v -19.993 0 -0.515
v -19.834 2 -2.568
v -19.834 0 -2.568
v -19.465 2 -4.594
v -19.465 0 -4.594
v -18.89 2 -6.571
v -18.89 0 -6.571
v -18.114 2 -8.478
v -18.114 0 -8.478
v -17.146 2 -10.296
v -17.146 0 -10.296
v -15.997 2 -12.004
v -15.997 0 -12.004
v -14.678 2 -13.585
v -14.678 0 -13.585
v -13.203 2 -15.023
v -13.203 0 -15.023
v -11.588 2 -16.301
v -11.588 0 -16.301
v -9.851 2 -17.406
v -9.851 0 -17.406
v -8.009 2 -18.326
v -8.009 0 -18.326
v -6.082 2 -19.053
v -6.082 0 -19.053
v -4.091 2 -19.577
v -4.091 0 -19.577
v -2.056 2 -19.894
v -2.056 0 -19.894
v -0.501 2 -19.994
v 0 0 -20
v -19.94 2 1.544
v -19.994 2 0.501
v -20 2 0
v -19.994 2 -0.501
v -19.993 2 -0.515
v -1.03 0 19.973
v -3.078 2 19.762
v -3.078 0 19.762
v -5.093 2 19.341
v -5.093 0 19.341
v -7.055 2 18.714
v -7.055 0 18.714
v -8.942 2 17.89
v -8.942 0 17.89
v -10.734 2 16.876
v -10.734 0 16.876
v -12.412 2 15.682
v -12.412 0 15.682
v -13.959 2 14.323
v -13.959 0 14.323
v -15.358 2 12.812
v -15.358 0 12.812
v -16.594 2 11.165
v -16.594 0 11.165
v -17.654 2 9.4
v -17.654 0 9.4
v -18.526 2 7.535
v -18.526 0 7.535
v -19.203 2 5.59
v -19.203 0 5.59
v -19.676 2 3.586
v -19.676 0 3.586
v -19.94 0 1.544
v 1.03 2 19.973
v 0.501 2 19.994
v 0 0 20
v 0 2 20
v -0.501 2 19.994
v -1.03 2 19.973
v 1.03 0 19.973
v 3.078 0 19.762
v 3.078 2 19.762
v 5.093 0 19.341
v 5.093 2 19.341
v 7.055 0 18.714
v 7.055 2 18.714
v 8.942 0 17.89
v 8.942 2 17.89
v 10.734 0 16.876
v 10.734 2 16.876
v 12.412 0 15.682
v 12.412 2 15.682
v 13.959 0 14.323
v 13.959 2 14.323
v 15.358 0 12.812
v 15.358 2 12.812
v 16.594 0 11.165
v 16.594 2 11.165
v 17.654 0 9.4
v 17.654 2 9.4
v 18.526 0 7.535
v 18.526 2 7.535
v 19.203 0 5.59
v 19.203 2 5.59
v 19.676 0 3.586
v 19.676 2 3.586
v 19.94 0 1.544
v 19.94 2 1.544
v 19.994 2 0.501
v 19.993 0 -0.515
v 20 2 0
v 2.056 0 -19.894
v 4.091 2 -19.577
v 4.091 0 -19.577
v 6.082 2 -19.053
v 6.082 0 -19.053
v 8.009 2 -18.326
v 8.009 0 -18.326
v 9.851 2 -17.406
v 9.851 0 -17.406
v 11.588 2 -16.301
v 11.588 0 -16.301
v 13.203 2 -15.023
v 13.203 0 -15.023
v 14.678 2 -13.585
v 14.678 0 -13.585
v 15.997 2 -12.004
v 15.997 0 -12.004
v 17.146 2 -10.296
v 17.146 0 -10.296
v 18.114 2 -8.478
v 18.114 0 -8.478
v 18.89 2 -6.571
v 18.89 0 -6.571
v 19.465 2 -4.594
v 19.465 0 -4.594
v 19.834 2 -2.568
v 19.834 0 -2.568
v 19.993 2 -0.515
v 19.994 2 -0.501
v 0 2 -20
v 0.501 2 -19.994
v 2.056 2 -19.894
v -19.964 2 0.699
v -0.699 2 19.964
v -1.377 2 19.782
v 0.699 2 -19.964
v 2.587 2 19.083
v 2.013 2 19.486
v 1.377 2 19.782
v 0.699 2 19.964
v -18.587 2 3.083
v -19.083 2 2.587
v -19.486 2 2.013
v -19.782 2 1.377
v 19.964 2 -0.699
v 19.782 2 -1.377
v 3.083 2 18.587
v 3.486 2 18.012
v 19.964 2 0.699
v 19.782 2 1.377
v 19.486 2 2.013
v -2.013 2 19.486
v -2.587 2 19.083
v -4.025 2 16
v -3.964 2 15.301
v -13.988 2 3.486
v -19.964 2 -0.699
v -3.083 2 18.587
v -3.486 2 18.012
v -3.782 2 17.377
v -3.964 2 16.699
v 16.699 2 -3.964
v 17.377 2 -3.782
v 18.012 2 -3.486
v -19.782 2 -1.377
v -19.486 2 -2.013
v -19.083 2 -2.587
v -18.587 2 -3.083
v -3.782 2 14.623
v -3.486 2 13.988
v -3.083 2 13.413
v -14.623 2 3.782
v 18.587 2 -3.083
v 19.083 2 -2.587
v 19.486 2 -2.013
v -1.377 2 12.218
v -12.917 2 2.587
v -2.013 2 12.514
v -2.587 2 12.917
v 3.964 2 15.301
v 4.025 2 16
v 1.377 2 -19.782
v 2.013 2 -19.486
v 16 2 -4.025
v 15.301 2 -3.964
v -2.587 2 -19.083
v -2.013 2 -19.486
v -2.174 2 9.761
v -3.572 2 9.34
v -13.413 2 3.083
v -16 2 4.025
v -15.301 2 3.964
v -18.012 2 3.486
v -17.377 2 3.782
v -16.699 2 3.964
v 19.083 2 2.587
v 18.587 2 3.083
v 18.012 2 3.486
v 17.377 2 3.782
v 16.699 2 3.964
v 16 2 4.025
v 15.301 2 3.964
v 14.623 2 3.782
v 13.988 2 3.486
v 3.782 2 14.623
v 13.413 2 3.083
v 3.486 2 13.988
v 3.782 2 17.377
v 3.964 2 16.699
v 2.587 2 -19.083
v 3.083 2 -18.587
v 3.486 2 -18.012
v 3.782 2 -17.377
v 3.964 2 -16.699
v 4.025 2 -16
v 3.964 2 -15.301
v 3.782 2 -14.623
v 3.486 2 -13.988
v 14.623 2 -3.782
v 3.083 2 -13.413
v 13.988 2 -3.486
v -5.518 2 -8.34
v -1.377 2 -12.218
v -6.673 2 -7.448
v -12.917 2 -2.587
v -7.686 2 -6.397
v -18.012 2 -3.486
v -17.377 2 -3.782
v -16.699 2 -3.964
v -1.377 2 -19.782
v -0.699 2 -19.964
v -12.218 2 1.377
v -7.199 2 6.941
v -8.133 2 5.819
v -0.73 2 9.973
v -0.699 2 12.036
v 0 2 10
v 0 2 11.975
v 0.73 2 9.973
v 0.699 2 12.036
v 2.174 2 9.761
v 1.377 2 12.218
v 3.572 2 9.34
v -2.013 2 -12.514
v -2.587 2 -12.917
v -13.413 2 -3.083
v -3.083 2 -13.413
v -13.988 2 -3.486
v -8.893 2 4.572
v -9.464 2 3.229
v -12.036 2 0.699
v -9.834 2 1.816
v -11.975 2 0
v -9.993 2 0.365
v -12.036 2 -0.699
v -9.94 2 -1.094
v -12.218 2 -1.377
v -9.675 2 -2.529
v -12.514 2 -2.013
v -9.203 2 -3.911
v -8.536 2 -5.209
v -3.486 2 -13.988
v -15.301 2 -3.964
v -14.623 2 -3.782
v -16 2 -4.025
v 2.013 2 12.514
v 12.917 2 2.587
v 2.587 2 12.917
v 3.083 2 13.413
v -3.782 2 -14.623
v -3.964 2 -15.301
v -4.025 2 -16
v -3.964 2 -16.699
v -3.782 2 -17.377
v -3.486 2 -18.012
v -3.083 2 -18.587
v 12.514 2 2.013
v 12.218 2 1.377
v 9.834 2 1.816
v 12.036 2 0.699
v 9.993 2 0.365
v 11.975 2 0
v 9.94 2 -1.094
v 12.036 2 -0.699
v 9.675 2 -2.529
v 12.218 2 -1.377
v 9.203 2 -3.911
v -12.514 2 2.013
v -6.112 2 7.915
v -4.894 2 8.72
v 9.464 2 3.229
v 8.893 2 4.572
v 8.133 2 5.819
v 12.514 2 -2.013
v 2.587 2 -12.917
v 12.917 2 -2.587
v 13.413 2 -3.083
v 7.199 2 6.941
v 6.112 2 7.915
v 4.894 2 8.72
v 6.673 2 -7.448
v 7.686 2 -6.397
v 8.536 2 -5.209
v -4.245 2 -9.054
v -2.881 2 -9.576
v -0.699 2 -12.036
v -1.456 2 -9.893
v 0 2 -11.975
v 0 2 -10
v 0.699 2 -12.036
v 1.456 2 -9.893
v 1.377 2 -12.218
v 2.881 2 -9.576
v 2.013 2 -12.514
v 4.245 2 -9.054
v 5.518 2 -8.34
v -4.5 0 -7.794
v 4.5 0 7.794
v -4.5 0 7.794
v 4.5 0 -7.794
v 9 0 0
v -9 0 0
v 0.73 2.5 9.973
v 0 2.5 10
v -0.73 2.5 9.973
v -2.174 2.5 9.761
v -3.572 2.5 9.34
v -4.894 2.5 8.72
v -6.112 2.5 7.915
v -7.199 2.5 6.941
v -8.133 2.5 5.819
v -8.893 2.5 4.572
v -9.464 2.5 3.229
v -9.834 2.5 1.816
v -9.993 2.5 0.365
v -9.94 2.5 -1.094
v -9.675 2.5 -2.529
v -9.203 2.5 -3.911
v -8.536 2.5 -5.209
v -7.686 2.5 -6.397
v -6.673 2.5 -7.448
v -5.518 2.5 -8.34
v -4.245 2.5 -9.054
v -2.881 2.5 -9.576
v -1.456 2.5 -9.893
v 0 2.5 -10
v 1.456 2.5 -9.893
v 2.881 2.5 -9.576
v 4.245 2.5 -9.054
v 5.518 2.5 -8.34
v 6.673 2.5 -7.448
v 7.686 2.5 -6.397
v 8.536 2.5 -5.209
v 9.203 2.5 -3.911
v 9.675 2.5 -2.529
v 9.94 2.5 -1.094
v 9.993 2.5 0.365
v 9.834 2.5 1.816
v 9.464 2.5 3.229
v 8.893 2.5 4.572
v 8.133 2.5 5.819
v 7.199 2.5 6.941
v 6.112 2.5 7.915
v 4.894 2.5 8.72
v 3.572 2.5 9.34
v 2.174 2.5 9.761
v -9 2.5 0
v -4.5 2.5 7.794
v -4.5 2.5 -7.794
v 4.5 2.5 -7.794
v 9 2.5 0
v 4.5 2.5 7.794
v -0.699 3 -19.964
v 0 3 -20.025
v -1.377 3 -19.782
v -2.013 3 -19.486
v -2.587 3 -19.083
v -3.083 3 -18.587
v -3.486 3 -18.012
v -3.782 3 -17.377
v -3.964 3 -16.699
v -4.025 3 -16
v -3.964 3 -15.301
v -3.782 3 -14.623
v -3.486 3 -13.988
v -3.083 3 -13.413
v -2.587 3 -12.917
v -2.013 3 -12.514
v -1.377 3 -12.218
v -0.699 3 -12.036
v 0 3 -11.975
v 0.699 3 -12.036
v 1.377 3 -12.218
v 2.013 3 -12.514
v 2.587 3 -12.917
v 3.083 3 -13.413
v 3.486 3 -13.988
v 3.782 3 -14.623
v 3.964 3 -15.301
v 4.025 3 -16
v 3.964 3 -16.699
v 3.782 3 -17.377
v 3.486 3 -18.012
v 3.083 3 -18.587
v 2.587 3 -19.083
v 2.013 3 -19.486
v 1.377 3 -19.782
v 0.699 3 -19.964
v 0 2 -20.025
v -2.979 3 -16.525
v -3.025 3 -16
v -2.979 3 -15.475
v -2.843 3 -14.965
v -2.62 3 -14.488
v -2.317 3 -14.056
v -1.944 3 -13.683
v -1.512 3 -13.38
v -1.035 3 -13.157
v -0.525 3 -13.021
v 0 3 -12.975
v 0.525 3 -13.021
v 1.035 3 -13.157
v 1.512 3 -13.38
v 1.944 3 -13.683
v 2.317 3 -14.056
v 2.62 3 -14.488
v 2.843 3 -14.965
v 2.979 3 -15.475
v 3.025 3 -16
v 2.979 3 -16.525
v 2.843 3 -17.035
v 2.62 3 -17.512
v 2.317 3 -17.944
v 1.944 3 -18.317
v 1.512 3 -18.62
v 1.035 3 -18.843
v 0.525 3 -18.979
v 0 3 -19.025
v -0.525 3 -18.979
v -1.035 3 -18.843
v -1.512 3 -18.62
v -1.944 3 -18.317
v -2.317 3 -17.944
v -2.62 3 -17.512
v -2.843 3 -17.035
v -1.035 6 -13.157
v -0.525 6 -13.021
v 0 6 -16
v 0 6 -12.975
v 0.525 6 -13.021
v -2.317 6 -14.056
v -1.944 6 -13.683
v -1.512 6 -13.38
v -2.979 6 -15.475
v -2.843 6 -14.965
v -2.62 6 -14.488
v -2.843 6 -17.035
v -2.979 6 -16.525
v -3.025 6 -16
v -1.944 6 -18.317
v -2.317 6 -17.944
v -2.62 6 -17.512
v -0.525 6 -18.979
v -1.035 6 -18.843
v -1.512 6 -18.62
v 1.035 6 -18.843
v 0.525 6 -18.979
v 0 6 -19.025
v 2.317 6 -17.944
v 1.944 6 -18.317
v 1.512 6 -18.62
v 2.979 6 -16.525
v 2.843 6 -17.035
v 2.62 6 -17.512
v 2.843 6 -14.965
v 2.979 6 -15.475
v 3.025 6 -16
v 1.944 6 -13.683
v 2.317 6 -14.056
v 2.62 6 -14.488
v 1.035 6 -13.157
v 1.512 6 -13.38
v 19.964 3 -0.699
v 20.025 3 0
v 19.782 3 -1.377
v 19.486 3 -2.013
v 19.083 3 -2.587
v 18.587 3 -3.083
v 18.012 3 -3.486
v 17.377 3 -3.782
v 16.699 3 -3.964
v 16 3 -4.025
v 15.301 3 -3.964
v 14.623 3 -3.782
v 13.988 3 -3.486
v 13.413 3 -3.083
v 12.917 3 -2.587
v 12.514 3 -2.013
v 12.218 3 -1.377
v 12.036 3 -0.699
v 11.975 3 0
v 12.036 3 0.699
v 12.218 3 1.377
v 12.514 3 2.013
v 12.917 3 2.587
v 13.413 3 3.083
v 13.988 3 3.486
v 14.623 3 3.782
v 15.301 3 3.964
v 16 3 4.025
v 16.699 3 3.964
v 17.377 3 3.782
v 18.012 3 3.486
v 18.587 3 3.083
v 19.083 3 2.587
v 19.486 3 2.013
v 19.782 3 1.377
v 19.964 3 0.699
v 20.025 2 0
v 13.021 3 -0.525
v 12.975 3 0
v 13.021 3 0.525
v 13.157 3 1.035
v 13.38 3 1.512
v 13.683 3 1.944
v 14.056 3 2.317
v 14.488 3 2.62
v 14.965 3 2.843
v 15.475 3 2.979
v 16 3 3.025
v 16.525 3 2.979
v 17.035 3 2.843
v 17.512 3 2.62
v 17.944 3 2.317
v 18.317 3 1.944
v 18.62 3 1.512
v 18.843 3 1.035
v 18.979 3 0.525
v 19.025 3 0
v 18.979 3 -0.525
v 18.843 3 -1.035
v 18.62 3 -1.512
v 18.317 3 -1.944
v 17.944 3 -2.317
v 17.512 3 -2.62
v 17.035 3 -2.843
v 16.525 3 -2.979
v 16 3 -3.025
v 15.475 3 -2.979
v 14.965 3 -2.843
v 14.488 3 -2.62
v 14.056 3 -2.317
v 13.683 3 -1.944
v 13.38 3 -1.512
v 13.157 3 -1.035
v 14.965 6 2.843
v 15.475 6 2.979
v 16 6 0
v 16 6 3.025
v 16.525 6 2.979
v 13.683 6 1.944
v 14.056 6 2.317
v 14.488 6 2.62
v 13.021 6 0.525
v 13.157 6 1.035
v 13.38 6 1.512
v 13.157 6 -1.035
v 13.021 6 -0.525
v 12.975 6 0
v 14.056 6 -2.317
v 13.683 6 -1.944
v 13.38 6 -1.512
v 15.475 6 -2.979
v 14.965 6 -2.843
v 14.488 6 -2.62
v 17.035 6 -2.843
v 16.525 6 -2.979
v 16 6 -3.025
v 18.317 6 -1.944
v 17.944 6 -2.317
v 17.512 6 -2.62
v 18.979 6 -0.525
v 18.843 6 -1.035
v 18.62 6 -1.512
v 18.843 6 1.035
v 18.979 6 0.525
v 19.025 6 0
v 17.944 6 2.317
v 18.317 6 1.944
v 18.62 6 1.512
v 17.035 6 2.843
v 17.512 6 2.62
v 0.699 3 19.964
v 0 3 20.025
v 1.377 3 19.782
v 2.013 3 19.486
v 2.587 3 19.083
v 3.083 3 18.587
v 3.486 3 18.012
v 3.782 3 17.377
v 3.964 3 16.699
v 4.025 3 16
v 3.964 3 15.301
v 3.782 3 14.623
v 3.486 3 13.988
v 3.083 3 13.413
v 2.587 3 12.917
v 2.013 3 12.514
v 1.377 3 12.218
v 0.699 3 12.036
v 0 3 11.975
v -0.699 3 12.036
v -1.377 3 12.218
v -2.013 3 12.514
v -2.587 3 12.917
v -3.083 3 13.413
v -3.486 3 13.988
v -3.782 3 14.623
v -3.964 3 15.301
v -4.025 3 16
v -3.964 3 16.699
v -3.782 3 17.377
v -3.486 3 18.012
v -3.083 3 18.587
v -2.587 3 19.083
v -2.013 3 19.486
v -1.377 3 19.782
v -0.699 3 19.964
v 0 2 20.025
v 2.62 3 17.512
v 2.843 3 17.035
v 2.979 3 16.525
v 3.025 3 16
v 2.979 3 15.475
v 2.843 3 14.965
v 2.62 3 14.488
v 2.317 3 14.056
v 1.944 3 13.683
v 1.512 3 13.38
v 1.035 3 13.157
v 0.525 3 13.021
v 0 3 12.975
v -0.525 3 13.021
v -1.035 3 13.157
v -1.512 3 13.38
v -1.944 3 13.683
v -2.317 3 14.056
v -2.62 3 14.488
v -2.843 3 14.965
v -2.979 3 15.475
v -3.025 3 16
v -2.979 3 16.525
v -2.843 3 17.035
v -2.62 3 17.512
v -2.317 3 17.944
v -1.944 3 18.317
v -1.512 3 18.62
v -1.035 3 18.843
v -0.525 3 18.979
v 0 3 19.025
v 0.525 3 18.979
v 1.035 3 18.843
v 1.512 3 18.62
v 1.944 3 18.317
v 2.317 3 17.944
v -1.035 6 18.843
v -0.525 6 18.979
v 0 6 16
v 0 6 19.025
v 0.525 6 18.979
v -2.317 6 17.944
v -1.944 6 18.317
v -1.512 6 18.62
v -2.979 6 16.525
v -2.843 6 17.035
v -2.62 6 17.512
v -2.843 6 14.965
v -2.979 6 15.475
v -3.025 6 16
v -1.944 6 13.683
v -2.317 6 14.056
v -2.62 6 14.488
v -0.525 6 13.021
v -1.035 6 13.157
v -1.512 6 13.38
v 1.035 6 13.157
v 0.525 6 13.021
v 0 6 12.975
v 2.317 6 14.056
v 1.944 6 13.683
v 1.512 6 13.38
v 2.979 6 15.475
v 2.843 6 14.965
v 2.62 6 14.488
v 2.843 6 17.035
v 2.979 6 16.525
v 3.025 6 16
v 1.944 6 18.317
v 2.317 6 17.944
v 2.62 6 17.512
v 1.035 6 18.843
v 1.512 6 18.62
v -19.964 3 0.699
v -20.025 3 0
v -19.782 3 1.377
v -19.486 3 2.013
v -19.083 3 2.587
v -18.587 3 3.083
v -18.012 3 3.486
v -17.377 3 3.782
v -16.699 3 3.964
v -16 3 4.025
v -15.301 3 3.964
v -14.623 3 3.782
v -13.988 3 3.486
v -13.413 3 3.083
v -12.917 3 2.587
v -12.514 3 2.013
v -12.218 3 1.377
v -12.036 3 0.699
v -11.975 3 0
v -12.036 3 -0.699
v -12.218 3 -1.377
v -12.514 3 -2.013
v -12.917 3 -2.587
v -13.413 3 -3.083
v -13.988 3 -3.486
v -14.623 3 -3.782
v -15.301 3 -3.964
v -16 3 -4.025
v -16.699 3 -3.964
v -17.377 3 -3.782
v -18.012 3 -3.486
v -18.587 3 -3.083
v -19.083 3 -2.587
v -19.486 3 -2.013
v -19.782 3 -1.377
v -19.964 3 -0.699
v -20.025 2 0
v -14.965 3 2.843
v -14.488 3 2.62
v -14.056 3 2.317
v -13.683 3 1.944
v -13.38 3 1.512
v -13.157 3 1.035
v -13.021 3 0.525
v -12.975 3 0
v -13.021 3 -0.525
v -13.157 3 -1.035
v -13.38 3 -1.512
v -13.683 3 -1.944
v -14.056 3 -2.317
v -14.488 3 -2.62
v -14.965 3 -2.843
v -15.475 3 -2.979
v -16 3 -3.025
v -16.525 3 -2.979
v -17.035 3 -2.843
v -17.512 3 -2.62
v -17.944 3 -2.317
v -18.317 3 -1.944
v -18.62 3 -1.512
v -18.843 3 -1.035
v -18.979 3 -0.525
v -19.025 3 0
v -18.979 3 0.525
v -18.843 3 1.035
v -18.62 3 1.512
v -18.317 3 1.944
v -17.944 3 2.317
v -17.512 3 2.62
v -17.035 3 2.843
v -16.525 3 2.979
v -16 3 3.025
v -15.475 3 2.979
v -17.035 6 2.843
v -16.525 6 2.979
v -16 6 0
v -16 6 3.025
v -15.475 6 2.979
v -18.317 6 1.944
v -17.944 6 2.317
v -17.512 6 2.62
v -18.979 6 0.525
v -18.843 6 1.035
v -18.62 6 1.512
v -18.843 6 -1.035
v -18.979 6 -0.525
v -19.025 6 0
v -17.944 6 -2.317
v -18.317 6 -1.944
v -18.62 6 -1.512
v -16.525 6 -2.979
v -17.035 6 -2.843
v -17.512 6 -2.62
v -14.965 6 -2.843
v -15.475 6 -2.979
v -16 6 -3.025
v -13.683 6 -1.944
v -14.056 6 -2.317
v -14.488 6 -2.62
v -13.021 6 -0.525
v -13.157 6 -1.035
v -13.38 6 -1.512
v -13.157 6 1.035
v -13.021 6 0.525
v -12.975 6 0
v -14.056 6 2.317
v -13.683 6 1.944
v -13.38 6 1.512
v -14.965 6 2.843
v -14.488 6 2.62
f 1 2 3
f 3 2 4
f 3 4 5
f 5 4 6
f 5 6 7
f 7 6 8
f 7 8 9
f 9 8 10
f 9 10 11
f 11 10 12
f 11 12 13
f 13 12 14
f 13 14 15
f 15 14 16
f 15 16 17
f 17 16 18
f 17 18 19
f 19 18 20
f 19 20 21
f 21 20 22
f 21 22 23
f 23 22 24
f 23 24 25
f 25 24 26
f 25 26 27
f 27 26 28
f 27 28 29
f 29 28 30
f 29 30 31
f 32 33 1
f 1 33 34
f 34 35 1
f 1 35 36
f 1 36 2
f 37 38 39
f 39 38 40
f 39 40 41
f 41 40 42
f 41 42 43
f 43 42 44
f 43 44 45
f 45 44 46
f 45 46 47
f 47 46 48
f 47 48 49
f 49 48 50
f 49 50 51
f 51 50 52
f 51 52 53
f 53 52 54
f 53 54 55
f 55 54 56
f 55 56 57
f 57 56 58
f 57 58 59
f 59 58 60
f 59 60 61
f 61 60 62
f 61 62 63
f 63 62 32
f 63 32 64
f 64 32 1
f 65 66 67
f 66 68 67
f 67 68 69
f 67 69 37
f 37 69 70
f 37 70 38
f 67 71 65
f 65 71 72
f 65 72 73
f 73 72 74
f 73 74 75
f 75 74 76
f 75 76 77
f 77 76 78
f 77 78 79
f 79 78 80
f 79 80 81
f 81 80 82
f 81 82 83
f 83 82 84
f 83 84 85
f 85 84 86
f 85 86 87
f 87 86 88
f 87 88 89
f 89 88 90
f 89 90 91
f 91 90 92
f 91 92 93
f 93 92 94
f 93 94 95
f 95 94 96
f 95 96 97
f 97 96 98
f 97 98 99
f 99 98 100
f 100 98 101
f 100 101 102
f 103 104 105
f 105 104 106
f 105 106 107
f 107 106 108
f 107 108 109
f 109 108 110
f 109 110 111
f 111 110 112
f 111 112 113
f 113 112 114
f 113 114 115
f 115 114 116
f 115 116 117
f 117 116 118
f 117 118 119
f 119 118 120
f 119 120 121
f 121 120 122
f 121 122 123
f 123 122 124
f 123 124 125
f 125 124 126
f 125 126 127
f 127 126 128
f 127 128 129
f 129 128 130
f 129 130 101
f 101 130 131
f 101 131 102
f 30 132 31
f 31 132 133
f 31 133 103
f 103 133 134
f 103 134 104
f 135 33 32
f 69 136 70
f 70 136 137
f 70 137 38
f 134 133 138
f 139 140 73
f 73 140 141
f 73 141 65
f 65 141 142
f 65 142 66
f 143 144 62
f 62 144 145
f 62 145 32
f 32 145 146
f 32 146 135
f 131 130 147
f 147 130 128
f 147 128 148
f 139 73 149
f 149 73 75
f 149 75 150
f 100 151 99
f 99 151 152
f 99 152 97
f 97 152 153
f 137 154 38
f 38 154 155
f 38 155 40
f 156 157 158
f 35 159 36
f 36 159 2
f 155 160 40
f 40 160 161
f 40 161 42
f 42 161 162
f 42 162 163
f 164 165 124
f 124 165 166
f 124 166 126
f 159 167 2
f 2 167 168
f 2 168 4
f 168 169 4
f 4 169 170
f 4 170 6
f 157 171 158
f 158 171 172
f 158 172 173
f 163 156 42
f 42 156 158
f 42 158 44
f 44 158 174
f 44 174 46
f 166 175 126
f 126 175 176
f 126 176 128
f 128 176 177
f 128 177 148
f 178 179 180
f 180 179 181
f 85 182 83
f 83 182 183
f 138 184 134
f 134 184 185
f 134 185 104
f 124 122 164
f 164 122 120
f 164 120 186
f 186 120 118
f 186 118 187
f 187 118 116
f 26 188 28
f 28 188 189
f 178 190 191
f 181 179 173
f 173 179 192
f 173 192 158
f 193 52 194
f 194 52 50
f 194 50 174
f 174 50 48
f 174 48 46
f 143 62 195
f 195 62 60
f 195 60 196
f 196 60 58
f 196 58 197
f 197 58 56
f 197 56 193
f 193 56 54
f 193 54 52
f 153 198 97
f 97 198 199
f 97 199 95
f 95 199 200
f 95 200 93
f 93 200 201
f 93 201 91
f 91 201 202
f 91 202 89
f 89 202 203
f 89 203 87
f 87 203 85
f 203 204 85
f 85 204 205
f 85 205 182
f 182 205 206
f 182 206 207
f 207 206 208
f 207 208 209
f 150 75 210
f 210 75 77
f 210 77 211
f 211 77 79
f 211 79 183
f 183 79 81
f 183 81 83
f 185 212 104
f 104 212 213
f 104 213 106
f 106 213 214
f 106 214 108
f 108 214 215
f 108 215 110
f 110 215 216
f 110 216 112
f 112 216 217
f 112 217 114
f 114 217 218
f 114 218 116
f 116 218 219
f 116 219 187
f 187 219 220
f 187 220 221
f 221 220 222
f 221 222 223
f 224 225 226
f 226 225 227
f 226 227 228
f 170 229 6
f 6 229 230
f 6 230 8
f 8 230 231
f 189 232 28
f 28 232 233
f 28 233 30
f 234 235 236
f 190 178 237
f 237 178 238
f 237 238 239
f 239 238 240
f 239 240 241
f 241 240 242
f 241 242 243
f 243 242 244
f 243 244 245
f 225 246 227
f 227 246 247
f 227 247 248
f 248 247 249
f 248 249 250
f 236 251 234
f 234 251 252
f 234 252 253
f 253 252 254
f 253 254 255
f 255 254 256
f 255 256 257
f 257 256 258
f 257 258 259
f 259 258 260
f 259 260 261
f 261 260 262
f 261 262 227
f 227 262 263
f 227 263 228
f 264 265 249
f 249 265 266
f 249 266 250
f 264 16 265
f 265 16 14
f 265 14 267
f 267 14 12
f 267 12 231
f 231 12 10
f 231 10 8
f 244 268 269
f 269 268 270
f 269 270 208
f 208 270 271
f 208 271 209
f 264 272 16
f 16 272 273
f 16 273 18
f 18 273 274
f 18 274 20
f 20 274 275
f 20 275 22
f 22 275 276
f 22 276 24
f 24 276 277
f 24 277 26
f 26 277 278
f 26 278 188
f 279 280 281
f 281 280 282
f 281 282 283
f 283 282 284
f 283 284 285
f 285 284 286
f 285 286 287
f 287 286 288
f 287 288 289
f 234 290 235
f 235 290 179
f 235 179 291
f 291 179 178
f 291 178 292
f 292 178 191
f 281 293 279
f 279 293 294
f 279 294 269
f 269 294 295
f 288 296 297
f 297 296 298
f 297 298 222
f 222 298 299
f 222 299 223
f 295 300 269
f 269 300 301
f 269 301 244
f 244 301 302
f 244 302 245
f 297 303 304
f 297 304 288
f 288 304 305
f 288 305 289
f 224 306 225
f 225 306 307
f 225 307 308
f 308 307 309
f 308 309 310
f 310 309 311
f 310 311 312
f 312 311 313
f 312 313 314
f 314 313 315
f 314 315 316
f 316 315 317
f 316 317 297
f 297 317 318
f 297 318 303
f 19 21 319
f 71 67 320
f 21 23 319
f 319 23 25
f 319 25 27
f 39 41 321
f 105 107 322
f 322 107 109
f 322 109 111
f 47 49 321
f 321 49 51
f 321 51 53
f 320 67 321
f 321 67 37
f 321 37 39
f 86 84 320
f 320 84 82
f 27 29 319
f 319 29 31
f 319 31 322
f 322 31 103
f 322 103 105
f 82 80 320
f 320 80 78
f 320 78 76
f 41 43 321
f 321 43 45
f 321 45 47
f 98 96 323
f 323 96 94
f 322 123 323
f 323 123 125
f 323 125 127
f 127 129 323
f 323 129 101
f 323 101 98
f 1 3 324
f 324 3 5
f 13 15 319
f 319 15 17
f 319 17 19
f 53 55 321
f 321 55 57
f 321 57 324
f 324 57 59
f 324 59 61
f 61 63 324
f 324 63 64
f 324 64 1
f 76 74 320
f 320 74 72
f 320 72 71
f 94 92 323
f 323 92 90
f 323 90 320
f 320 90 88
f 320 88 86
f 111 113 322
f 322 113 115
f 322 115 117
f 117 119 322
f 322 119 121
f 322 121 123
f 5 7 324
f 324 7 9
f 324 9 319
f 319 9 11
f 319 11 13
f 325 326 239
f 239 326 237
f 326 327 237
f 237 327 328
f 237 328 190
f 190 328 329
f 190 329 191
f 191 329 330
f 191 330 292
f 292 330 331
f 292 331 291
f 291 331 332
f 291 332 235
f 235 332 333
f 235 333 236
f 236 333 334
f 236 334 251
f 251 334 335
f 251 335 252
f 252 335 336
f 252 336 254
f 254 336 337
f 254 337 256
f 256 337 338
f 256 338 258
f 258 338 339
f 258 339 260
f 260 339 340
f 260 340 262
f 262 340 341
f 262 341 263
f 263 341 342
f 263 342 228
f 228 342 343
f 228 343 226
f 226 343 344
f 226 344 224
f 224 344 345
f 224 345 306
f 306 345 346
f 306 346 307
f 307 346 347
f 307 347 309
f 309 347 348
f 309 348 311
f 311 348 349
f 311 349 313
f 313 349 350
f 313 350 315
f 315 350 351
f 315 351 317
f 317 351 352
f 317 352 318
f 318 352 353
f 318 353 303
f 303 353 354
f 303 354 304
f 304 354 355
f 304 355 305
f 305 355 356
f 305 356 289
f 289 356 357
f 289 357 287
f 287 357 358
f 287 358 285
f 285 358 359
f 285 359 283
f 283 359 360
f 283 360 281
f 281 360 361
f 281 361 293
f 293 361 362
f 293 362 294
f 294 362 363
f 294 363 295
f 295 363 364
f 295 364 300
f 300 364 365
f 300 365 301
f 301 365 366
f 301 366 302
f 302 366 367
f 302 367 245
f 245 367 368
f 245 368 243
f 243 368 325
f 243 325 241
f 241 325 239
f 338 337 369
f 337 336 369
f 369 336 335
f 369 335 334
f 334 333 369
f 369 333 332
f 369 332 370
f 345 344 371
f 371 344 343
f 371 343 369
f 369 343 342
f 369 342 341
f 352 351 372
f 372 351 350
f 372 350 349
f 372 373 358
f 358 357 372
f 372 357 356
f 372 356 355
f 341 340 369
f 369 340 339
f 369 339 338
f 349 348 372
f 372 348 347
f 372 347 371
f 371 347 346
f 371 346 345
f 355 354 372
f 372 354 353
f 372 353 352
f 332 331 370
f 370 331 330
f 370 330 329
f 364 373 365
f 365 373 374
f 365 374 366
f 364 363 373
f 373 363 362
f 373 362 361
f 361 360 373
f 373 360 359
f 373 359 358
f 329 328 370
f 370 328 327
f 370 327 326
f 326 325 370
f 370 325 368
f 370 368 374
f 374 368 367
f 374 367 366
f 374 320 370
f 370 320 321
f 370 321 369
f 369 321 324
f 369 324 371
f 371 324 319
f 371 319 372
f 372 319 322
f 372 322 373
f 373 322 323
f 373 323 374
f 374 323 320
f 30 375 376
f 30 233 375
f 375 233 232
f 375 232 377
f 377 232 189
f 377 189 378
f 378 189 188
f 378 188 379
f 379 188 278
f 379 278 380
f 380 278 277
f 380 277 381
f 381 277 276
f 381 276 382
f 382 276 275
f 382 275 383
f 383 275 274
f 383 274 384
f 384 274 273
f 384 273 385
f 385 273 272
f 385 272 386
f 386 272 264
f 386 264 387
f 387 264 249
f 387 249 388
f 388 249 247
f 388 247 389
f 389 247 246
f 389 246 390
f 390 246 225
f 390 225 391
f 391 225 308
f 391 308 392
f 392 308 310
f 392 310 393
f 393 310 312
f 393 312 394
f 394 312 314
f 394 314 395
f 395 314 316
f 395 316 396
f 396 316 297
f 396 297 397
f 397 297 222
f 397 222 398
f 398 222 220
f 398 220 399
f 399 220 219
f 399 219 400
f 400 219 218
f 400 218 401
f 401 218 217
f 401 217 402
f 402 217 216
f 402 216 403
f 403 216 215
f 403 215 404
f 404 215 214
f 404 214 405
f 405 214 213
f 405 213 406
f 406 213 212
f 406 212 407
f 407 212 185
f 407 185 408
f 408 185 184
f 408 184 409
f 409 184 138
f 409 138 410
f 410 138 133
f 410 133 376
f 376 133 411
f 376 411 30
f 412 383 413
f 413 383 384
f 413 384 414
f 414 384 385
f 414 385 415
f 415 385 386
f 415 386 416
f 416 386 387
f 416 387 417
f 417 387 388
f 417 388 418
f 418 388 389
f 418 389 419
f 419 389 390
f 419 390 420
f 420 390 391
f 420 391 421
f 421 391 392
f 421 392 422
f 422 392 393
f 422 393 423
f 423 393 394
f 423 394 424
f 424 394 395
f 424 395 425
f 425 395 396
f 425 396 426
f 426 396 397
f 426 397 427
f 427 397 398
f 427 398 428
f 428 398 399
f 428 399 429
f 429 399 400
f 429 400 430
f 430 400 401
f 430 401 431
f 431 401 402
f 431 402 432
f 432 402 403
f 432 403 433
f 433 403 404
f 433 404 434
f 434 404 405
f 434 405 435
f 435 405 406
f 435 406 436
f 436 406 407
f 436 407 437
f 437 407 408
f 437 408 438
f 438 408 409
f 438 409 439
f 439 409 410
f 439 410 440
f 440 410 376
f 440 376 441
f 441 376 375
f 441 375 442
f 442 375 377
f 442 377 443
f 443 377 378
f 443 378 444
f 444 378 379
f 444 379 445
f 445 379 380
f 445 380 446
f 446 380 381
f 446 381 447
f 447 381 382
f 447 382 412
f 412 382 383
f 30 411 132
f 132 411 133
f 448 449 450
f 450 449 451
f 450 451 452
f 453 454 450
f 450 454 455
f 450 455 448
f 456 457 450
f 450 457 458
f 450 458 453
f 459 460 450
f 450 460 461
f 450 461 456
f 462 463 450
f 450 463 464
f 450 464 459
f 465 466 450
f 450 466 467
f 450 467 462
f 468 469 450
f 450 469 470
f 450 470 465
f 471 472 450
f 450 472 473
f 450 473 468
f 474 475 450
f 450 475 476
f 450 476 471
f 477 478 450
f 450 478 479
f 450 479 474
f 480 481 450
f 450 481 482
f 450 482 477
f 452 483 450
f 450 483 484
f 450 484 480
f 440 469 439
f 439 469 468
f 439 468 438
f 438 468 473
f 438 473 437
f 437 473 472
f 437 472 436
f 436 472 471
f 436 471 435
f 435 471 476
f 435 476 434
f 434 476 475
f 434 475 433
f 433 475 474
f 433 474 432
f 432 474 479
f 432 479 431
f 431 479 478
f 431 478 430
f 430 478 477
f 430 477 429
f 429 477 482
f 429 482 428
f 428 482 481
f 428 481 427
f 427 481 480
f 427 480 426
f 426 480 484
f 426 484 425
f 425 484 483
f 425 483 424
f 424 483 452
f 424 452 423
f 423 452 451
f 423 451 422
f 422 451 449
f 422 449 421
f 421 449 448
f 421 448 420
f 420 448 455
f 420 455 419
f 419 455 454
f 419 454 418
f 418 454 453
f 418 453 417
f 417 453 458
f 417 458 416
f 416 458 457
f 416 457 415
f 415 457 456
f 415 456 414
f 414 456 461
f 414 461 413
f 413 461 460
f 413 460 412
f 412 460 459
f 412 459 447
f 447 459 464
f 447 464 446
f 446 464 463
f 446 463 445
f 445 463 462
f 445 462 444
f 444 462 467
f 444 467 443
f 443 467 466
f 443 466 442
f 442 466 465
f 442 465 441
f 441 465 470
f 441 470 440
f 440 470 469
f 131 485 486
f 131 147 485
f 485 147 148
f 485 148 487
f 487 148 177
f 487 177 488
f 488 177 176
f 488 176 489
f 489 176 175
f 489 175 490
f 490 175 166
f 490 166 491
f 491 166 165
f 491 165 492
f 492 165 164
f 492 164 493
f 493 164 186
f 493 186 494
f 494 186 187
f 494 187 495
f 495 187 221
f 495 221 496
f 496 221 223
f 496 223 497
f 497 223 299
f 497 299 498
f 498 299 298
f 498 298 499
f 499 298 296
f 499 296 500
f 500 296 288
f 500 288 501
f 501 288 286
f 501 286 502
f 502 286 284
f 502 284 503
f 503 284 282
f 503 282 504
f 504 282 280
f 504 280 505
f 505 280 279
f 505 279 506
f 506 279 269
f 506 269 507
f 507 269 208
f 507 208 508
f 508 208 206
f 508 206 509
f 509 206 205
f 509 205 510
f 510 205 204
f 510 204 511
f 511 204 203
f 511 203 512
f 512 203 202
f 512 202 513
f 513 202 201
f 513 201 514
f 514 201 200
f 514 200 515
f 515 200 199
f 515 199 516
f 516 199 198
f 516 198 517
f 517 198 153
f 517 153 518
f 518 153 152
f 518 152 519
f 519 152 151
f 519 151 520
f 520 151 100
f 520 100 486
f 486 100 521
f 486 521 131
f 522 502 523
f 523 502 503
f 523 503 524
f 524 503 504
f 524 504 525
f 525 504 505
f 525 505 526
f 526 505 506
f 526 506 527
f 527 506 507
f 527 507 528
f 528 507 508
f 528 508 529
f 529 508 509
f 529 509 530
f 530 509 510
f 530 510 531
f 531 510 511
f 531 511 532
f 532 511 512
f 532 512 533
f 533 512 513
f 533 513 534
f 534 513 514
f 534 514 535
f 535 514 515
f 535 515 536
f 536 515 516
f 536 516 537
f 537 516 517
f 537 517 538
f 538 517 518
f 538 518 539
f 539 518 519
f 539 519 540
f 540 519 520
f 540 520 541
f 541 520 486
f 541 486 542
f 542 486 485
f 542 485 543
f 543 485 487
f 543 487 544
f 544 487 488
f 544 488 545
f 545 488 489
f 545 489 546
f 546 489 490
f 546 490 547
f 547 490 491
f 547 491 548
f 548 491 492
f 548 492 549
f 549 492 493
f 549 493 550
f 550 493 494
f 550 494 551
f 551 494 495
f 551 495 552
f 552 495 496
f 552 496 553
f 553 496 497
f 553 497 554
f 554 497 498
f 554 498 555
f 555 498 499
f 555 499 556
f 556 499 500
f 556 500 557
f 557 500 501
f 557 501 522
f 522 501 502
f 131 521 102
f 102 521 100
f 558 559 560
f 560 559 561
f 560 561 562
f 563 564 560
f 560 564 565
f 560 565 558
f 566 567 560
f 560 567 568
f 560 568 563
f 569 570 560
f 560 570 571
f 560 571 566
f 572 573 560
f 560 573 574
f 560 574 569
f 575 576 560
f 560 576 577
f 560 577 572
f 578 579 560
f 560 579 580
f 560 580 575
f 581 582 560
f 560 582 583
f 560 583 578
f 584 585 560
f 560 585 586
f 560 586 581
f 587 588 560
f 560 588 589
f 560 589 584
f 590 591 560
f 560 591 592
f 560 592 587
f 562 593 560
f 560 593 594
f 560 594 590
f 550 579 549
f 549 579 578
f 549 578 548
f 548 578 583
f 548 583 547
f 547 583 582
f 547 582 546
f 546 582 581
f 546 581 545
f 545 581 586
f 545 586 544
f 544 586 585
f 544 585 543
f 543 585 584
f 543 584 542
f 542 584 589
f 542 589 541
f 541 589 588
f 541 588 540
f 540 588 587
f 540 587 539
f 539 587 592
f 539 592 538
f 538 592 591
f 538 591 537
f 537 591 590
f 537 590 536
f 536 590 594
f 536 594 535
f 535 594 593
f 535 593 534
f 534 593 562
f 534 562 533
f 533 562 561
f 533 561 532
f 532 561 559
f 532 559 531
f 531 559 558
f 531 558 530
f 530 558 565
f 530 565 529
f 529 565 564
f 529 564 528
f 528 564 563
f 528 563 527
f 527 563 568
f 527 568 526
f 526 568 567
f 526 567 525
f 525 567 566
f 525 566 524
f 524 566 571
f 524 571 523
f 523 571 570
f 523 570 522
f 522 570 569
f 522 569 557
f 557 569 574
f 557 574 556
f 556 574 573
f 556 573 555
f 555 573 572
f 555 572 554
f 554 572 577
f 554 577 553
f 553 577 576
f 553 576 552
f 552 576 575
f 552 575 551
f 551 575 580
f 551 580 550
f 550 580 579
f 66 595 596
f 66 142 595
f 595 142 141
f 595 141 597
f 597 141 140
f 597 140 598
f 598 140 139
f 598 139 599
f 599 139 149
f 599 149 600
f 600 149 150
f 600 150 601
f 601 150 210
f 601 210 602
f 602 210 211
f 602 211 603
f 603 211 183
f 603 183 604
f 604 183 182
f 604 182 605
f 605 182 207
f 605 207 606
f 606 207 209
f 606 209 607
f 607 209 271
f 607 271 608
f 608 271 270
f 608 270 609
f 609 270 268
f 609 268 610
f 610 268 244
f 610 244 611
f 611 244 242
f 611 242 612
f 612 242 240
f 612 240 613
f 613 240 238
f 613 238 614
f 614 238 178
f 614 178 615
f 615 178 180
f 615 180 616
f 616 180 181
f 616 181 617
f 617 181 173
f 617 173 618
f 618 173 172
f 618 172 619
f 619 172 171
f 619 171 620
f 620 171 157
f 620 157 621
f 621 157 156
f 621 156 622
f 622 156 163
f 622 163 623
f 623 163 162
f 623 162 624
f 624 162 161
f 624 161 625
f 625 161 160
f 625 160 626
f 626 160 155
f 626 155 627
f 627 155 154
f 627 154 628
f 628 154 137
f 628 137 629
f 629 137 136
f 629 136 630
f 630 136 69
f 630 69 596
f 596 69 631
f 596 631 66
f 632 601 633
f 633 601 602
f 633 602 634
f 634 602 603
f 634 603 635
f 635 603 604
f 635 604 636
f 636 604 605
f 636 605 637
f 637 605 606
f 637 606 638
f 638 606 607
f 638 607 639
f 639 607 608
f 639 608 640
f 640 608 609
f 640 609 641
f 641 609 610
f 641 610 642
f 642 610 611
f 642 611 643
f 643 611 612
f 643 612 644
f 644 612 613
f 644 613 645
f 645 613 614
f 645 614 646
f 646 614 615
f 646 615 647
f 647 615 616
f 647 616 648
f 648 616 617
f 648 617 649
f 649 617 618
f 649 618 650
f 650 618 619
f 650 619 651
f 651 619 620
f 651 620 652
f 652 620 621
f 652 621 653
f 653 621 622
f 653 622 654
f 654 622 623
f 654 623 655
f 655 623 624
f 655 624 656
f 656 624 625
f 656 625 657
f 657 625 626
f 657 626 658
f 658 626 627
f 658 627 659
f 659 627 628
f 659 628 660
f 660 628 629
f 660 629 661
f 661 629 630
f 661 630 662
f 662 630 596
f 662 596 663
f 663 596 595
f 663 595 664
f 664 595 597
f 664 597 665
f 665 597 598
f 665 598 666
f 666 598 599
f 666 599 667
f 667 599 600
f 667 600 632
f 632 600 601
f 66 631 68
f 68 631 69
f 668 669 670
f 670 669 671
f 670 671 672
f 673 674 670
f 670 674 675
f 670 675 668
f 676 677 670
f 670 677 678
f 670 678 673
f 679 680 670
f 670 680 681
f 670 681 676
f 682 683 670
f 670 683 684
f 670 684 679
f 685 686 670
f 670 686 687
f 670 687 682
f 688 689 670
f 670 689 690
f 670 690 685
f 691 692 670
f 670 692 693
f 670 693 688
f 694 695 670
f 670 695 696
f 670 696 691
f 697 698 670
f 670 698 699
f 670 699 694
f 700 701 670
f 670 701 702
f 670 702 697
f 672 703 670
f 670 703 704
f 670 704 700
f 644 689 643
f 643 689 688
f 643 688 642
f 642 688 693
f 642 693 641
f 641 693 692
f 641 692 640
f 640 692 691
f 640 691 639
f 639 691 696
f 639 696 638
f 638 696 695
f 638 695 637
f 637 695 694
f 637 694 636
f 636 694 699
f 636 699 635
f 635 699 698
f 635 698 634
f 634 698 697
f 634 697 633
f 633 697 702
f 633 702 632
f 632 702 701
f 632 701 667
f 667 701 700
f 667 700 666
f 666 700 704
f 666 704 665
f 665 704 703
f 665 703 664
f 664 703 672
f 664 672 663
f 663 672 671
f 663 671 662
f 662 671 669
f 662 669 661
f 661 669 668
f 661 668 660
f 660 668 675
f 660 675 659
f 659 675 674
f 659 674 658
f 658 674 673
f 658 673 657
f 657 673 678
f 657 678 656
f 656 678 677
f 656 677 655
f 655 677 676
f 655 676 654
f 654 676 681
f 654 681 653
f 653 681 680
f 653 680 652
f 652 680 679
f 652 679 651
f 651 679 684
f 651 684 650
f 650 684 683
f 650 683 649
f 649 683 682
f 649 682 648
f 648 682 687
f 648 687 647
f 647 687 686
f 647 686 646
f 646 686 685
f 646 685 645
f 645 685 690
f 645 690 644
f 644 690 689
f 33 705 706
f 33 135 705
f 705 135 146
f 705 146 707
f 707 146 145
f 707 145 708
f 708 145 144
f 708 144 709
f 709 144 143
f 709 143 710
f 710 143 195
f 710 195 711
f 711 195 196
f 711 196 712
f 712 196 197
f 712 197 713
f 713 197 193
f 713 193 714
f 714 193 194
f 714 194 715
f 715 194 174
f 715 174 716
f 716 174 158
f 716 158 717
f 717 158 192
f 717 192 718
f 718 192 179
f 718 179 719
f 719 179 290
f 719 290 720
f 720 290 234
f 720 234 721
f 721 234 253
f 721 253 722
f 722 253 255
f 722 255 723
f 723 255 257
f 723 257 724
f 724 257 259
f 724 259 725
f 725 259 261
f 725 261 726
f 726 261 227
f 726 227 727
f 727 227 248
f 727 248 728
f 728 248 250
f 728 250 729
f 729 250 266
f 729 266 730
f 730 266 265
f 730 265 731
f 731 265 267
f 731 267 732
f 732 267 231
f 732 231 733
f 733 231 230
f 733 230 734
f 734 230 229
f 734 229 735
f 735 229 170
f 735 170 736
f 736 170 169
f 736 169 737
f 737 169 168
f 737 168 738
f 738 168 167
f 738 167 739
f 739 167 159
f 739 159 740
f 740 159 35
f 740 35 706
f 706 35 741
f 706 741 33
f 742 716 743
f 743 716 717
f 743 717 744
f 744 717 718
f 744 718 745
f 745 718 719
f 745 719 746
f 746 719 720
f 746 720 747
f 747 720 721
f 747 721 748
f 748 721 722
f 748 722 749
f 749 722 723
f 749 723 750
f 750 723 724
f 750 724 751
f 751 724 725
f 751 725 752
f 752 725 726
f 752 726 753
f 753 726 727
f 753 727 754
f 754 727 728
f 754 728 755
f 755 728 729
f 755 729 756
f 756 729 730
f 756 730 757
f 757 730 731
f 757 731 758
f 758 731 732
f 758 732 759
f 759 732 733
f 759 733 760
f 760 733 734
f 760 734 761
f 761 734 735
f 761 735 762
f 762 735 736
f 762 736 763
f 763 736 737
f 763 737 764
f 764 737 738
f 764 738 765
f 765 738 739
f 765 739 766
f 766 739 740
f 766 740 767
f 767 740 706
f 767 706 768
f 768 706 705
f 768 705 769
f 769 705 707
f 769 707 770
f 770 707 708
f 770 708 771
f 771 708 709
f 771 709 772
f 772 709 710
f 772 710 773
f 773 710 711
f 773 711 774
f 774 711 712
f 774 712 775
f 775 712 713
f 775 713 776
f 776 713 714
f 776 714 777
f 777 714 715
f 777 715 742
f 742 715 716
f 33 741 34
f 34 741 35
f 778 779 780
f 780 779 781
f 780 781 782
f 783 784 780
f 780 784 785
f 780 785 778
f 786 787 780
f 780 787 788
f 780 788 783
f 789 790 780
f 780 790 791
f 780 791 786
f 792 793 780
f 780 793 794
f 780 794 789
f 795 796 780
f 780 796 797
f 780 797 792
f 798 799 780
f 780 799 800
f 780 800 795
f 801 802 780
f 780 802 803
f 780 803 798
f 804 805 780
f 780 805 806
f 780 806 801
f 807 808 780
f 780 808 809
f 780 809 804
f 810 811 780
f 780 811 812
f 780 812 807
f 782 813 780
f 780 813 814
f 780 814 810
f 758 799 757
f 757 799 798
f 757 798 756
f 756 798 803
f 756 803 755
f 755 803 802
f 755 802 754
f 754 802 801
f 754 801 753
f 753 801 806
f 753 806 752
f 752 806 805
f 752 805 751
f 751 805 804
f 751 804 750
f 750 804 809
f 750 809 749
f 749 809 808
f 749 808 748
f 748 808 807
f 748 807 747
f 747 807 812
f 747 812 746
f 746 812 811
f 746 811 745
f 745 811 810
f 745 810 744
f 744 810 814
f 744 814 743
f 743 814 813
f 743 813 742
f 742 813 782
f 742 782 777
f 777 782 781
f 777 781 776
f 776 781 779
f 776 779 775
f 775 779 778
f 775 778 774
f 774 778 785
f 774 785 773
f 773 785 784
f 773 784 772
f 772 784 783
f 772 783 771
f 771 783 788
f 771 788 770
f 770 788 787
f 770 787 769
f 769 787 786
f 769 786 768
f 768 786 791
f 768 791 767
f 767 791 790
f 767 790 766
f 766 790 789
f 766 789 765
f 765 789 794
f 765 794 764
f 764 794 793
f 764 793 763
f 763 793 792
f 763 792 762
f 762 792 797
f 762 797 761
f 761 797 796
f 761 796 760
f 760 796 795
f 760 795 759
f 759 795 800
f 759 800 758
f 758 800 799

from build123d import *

# Parameters (mm, degrees)
ESQUISSE1_R             = 20
BOSS_EXTRU_1_DEPTH      = 2
ESQUISSE2_R             = 3.025
BOSS_EXTRU_2_DEPTH      = 4
ESQUISSE4_R             = 10
BOSS_EXTRU_3_DEPTH      = 0.5
ENL_V_MAT_EXTRU_1_DEPTH = 6
ESQUISSE5_R             = 4.025
BOSS_EXTRU_4_DEPTH      = 1


with BuildPart() as part:
    # Esquisse1 → Boss.-Extru.1 (new body)
    with BuildSketch(Plane(origin=(0, 0, 0), x_dir=(1, 0, 0), z_dir=(0, 1, 0))):
        Circle(ESQUISSE1_R)
    extrude(amount=BOSS_EXTRU_1_DEPTH)

    # Esquisse2 → Boss.-Extru.2 (add)
    with BuildSketch(Plane(origin=(0, 2, 0), x_dir=(1, 0, 0), z_dir=(0, 1, 0))):
        with Locations((0, 16)):
            Circle(ESQUISSE2_R)
        with Locations((16, 0)):
            Circle(ESQUISSE2_R)
        with Locations((0, -16)):
            Circle(ESQUISSE2_R)
        with Locations((-16, 0)):
            Circle(ESQUISSE2_R)
    extrude(amount=BOSS_EXTRU_2_DEPTH)

    # Esquisse4 → Boss.-Extru.3 (add)
    with BuildSketch(Plane(origin=(0, 2, 0), x_dir=(1, 0, 0), z_dir=(0, 1, 0))):
        Circle(ESQUISSE4_R)
    extrude(amount=BOSS_EXTRU_3_DEPTH)

    # Esquisse3 → Enlèv. mat.-Extru.1 (cut)
    with BuildSketch(Plane(origin=(0, 2.5, 0), x_dir=(1, 0, 0), z_dir=(0, 1, 0))):
        Polygon((4.5, -7.794228634), (9, 0), (4.5, 7.794228634), (-4.5, 7.794228634), (-9, 0), (-4.5, -7.794228634), align=None)
    extrude(amount=-ENL_V_MAT_EXTRU_1_DEPTH, mode=Mode.SUBTRACT)

    # Esquisse5 → Boss.-Extru.4 (add)
    with BuildSketch(Plane(origin=(0, 2, 0), x_dir=(1, 0, 0), z_dir=(0, 1, 0))):
        with Locations((16, 0)):
            Circle(ESQUISSE5_R)
        with Locations((0, 16)):
            Circle(ESQUISSE5_R)
        with Locations((0, -16)):
            Circle(ESQUISSE5_R)
        with Locations((-16, 0)):
            Circle(ESQUISSE5_R)
    extrude(amount=BOSS_EXTRU_4_DEPTH)


solid = part.part
